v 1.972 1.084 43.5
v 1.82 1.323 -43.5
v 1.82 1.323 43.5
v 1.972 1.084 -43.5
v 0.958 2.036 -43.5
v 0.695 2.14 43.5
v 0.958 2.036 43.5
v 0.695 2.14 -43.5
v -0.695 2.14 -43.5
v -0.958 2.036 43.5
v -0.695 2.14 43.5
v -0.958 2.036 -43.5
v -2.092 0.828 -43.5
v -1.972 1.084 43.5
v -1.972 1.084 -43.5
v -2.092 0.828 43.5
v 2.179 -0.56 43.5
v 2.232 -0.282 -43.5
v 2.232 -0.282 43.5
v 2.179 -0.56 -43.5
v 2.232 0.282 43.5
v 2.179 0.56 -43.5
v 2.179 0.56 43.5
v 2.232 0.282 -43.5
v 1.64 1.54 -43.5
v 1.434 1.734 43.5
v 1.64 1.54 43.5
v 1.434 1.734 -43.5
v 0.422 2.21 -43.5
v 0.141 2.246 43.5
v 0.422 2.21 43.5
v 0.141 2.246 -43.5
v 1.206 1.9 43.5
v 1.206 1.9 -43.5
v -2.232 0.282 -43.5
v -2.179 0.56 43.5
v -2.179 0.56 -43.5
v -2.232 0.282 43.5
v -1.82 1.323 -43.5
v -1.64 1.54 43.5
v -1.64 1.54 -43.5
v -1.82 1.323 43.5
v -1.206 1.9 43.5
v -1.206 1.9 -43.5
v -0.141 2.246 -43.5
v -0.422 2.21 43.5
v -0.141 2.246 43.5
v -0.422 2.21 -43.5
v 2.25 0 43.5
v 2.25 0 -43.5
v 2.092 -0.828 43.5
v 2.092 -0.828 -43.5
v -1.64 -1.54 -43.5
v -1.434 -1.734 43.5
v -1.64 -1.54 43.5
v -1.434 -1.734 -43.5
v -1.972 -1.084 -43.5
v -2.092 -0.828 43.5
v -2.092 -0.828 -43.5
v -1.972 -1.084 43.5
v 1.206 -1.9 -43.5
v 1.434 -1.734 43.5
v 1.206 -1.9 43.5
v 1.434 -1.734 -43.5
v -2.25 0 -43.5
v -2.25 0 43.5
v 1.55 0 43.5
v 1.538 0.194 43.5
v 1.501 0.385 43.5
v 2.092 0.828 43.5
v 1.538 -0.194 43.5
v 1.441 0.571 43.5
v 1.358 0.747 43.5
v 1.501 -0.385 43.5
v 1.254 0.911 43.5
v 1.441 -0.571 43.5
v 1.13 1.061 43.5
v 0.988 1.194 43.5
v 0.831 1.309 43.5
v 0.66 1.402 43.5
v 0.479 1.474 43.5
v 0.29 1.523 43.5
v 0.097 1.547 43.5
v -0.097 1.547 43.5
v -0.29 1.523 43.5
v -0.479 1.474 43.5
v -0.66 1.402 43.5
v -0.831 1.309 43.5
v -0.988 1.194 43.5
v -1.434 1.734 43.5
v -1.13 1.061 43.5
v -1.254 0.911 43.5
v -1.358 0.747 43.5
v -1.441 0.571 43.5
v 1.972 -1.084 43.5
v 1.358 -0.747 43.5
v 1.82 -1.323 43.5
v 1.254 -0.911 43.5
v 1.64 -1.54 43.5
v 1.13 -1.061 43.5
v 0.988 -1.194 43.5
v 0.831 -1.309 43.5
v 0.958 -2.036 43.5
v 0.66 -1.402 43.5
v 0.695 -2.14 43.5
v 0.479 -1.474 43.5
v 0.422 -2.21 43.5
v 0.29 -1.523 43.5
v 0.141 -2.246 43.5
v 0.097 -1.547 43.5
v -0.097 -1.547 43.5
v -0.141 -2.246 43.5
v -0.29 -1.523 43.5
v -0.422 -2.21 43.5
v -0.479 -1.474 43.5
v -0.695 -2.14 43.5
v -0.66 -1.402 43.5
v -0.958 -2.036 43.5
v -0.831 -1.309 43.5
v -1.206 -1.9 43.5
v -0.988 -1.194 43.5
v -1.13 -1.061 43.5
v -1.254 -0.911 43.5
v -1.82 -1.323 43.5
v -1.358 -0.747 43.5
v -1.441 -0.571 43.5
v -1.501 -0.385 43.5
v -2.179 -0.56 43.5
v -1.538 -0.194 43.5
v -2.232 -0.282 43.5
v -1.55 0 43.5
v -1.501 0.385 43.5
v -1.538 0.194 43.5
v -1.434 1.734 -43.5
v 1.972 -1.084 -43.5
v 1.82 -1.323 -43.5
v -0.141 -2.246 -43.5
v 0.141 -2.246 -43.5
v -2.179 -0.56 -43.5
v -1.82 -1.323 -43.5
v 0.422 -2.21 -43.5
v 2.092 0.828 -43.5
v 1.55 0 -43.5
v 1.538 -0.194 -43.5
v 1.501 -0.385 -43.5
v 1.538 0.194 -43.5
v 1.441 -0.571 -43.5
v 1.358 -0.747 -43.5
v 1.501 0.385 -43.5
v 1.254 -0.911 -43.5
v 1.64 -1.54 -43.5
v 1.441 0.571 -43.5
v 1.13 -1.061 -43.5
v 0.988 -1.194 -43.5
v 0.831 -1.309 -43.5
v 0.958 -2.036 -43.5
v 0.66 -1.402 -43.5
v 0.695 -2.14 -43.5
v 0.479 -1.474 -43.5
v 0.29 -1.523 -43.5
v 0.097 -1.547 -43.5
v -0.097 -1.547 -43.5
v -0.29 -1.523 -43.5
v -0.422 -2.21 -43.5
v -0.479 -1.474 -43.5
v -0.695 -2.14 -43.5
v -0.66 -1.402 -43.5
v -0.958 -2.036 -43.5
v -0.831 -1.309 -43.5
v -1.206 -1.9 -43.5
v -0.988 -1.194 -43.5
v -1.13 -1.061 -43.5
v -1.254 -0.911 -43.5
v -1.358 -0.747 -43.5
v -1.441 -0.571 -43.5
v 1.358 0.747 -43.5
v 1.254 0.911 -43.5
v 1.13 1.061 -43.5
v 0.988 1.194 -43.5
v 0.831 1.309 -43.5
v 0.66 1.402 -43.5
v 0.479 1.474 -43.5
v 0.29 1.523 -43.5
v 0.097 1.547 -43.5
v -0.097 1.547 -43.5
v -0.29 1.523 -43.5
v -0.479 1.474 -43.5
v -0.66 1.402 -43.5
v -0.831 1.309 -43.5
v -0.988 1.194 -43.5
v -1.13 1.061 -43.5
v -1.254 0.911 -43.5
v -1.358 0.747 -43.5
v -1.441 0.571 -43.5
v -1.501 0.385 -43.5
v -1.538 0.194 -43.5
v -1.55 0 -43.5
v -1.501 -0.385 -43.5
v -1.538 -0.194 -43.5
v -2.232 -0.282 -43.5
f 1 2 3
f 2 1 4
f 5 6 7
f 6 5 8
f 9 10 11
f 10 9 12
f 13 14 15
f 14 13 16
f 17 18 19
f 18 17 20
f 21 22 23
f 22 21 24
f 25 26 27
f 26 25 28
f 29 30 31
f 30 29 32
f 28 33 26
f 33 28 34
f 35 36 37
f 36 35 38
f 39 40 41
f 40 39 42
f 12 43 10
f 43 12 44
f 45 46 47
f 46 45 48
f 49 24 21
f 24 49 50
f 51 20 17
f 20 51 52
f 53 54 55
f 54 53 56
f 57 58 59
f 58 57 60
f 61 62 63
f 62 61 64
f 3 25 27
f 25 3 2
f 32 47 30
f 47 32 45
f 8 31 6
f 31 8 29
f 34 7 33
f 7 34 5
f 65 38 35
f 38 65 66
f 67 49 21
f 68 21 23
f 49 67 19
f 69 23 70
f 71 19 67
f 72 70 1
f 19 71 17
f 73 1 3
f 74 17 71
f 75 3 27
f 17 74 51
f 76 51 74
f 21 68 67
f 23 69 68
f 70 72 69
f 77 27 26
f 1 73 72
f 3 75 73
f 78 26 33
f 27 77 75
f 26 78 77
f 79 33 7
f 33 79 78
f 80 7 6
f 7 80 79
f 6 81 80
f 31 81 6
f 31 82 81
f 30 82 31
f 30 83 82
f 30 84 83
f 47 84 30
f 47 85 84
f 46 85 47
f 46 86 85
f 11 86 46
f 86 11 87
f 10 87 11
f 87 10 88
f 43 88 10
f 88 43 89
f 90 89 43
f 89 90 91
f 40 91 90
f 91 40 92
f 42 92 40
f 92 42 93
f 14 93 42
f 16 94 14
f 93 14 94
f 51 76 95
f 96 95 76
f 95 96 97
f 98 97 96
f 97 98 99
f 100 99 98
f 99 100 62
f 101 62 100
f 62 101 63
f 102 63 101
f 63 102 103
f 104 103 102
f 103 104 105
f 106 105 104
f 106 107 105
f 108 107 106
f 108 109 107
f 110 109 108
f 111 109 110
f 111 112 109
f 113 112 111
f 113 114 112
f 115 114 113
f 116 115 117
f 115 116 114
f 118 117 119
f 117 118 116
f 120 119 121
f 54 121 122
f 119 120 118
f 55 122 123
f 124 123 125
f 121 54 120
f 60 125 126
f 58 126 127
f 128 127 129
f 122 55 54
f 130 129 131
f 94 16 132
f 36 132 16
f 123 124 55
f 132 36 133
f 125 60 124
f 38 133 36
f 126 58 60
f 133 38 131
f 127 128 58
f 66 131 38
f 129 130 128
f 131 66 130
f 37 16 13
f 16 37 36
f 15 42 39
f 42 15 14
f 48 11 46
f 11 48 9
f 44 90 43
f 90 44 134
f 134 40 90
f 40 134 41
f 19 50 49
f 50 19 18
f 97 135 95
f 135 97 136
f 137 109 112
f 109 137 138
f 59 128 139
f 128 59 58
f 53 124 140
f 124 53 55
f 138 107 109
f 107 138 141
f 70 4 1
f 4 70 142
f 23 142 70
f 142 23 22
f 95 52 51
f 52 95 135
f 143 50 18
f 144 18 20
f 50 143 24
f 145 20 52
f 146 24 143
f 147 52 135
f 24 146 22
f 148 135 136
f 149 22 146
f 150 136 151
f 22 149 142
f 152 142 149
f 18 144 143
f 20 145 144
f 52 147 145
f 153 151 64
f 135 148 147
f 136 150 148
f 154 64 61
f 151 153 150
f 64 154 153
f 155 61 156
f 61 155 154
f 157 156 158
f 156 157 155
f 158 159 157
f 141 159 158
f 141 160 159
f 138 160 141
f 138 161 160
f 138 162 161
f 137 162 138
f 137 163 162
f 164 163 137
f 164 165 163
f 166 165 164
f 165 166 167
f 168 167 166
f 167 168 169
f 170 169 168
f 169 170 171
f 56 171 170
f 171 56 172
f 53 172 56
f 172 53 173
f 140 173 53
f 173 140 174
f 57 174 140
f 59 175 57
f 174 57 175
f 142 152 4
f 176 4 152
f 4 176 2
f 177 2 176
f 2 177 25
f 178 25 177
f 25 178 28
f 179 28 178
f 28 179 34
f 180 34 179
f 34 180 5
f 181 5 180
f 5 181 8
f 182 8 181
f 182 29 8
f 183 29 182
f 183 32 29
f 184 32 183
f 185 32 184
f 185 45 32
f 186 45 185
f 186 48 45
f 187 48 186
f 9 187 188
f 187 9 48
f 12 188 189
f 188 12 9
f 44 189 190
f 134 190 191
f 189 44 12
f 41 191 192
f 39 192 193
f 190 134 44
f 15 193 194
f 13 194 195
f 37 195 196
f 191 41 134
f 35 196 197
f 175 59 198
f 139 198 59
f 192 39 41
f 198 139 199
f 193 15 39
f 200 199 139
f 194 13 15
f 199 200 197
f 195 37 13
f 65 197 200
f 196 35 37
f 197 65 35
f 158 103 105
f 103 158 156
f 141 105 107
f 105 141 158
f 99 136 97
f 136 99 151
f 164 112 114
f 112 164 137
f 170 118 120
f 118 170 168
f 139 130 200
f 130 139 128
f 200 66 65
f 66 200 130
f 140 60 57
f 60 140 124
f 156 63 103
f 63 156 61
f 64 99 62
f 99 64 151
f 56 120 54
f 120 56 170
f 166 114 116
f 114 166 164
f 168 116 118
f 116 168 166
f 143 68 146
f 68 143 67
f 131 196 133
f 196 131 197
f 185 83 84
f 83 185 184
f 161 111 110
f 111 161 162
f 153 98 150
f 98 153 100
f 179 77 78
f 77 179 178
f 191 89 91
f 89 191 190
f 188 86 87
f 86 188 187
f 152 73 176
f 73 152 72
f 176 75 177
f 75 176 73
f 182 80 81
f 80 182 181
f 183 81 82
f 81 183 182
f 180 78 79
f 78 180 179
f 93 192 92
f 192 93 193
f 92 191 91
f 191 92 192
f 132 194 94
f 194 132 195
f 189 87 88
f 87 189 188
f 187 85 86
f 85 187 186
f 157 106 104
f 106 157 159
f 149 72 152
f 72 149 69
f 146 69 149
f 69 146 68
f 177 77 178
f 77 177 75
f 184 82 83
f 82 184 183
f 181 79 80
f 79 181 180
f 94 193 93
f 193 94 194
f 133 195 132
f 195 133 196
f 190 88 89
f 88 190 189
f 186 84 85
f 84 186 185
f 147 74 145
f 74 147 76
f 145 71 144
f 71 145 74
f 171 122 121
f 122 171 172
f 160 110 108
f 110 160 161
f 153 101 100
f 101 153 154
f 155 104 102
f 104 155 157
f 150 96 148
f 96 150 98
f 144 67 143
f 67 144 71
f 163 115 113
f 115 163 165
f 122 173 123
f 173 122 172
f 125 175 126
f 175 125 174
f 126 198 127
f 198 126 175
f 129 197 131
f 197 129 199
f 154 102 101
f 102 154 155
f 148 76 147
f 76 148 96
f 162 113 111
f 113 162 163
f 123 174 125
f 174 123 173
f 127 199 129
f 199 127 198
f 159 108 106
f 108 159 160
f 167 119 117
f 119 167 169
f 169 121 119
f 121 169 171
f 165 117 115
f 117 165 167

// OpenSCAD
$fn = 50;


difference() {
	union() {
		translate(v = [0, 0, -43.5000000000]) {
			cylinder(h = 87, r = 2.2500000000);
		}
	}
	union() {
		translate(v = [0, 0, -100.0000000000]) {
			cylinder(h = 200, r = 1.5500000000);
		}
	}
}
